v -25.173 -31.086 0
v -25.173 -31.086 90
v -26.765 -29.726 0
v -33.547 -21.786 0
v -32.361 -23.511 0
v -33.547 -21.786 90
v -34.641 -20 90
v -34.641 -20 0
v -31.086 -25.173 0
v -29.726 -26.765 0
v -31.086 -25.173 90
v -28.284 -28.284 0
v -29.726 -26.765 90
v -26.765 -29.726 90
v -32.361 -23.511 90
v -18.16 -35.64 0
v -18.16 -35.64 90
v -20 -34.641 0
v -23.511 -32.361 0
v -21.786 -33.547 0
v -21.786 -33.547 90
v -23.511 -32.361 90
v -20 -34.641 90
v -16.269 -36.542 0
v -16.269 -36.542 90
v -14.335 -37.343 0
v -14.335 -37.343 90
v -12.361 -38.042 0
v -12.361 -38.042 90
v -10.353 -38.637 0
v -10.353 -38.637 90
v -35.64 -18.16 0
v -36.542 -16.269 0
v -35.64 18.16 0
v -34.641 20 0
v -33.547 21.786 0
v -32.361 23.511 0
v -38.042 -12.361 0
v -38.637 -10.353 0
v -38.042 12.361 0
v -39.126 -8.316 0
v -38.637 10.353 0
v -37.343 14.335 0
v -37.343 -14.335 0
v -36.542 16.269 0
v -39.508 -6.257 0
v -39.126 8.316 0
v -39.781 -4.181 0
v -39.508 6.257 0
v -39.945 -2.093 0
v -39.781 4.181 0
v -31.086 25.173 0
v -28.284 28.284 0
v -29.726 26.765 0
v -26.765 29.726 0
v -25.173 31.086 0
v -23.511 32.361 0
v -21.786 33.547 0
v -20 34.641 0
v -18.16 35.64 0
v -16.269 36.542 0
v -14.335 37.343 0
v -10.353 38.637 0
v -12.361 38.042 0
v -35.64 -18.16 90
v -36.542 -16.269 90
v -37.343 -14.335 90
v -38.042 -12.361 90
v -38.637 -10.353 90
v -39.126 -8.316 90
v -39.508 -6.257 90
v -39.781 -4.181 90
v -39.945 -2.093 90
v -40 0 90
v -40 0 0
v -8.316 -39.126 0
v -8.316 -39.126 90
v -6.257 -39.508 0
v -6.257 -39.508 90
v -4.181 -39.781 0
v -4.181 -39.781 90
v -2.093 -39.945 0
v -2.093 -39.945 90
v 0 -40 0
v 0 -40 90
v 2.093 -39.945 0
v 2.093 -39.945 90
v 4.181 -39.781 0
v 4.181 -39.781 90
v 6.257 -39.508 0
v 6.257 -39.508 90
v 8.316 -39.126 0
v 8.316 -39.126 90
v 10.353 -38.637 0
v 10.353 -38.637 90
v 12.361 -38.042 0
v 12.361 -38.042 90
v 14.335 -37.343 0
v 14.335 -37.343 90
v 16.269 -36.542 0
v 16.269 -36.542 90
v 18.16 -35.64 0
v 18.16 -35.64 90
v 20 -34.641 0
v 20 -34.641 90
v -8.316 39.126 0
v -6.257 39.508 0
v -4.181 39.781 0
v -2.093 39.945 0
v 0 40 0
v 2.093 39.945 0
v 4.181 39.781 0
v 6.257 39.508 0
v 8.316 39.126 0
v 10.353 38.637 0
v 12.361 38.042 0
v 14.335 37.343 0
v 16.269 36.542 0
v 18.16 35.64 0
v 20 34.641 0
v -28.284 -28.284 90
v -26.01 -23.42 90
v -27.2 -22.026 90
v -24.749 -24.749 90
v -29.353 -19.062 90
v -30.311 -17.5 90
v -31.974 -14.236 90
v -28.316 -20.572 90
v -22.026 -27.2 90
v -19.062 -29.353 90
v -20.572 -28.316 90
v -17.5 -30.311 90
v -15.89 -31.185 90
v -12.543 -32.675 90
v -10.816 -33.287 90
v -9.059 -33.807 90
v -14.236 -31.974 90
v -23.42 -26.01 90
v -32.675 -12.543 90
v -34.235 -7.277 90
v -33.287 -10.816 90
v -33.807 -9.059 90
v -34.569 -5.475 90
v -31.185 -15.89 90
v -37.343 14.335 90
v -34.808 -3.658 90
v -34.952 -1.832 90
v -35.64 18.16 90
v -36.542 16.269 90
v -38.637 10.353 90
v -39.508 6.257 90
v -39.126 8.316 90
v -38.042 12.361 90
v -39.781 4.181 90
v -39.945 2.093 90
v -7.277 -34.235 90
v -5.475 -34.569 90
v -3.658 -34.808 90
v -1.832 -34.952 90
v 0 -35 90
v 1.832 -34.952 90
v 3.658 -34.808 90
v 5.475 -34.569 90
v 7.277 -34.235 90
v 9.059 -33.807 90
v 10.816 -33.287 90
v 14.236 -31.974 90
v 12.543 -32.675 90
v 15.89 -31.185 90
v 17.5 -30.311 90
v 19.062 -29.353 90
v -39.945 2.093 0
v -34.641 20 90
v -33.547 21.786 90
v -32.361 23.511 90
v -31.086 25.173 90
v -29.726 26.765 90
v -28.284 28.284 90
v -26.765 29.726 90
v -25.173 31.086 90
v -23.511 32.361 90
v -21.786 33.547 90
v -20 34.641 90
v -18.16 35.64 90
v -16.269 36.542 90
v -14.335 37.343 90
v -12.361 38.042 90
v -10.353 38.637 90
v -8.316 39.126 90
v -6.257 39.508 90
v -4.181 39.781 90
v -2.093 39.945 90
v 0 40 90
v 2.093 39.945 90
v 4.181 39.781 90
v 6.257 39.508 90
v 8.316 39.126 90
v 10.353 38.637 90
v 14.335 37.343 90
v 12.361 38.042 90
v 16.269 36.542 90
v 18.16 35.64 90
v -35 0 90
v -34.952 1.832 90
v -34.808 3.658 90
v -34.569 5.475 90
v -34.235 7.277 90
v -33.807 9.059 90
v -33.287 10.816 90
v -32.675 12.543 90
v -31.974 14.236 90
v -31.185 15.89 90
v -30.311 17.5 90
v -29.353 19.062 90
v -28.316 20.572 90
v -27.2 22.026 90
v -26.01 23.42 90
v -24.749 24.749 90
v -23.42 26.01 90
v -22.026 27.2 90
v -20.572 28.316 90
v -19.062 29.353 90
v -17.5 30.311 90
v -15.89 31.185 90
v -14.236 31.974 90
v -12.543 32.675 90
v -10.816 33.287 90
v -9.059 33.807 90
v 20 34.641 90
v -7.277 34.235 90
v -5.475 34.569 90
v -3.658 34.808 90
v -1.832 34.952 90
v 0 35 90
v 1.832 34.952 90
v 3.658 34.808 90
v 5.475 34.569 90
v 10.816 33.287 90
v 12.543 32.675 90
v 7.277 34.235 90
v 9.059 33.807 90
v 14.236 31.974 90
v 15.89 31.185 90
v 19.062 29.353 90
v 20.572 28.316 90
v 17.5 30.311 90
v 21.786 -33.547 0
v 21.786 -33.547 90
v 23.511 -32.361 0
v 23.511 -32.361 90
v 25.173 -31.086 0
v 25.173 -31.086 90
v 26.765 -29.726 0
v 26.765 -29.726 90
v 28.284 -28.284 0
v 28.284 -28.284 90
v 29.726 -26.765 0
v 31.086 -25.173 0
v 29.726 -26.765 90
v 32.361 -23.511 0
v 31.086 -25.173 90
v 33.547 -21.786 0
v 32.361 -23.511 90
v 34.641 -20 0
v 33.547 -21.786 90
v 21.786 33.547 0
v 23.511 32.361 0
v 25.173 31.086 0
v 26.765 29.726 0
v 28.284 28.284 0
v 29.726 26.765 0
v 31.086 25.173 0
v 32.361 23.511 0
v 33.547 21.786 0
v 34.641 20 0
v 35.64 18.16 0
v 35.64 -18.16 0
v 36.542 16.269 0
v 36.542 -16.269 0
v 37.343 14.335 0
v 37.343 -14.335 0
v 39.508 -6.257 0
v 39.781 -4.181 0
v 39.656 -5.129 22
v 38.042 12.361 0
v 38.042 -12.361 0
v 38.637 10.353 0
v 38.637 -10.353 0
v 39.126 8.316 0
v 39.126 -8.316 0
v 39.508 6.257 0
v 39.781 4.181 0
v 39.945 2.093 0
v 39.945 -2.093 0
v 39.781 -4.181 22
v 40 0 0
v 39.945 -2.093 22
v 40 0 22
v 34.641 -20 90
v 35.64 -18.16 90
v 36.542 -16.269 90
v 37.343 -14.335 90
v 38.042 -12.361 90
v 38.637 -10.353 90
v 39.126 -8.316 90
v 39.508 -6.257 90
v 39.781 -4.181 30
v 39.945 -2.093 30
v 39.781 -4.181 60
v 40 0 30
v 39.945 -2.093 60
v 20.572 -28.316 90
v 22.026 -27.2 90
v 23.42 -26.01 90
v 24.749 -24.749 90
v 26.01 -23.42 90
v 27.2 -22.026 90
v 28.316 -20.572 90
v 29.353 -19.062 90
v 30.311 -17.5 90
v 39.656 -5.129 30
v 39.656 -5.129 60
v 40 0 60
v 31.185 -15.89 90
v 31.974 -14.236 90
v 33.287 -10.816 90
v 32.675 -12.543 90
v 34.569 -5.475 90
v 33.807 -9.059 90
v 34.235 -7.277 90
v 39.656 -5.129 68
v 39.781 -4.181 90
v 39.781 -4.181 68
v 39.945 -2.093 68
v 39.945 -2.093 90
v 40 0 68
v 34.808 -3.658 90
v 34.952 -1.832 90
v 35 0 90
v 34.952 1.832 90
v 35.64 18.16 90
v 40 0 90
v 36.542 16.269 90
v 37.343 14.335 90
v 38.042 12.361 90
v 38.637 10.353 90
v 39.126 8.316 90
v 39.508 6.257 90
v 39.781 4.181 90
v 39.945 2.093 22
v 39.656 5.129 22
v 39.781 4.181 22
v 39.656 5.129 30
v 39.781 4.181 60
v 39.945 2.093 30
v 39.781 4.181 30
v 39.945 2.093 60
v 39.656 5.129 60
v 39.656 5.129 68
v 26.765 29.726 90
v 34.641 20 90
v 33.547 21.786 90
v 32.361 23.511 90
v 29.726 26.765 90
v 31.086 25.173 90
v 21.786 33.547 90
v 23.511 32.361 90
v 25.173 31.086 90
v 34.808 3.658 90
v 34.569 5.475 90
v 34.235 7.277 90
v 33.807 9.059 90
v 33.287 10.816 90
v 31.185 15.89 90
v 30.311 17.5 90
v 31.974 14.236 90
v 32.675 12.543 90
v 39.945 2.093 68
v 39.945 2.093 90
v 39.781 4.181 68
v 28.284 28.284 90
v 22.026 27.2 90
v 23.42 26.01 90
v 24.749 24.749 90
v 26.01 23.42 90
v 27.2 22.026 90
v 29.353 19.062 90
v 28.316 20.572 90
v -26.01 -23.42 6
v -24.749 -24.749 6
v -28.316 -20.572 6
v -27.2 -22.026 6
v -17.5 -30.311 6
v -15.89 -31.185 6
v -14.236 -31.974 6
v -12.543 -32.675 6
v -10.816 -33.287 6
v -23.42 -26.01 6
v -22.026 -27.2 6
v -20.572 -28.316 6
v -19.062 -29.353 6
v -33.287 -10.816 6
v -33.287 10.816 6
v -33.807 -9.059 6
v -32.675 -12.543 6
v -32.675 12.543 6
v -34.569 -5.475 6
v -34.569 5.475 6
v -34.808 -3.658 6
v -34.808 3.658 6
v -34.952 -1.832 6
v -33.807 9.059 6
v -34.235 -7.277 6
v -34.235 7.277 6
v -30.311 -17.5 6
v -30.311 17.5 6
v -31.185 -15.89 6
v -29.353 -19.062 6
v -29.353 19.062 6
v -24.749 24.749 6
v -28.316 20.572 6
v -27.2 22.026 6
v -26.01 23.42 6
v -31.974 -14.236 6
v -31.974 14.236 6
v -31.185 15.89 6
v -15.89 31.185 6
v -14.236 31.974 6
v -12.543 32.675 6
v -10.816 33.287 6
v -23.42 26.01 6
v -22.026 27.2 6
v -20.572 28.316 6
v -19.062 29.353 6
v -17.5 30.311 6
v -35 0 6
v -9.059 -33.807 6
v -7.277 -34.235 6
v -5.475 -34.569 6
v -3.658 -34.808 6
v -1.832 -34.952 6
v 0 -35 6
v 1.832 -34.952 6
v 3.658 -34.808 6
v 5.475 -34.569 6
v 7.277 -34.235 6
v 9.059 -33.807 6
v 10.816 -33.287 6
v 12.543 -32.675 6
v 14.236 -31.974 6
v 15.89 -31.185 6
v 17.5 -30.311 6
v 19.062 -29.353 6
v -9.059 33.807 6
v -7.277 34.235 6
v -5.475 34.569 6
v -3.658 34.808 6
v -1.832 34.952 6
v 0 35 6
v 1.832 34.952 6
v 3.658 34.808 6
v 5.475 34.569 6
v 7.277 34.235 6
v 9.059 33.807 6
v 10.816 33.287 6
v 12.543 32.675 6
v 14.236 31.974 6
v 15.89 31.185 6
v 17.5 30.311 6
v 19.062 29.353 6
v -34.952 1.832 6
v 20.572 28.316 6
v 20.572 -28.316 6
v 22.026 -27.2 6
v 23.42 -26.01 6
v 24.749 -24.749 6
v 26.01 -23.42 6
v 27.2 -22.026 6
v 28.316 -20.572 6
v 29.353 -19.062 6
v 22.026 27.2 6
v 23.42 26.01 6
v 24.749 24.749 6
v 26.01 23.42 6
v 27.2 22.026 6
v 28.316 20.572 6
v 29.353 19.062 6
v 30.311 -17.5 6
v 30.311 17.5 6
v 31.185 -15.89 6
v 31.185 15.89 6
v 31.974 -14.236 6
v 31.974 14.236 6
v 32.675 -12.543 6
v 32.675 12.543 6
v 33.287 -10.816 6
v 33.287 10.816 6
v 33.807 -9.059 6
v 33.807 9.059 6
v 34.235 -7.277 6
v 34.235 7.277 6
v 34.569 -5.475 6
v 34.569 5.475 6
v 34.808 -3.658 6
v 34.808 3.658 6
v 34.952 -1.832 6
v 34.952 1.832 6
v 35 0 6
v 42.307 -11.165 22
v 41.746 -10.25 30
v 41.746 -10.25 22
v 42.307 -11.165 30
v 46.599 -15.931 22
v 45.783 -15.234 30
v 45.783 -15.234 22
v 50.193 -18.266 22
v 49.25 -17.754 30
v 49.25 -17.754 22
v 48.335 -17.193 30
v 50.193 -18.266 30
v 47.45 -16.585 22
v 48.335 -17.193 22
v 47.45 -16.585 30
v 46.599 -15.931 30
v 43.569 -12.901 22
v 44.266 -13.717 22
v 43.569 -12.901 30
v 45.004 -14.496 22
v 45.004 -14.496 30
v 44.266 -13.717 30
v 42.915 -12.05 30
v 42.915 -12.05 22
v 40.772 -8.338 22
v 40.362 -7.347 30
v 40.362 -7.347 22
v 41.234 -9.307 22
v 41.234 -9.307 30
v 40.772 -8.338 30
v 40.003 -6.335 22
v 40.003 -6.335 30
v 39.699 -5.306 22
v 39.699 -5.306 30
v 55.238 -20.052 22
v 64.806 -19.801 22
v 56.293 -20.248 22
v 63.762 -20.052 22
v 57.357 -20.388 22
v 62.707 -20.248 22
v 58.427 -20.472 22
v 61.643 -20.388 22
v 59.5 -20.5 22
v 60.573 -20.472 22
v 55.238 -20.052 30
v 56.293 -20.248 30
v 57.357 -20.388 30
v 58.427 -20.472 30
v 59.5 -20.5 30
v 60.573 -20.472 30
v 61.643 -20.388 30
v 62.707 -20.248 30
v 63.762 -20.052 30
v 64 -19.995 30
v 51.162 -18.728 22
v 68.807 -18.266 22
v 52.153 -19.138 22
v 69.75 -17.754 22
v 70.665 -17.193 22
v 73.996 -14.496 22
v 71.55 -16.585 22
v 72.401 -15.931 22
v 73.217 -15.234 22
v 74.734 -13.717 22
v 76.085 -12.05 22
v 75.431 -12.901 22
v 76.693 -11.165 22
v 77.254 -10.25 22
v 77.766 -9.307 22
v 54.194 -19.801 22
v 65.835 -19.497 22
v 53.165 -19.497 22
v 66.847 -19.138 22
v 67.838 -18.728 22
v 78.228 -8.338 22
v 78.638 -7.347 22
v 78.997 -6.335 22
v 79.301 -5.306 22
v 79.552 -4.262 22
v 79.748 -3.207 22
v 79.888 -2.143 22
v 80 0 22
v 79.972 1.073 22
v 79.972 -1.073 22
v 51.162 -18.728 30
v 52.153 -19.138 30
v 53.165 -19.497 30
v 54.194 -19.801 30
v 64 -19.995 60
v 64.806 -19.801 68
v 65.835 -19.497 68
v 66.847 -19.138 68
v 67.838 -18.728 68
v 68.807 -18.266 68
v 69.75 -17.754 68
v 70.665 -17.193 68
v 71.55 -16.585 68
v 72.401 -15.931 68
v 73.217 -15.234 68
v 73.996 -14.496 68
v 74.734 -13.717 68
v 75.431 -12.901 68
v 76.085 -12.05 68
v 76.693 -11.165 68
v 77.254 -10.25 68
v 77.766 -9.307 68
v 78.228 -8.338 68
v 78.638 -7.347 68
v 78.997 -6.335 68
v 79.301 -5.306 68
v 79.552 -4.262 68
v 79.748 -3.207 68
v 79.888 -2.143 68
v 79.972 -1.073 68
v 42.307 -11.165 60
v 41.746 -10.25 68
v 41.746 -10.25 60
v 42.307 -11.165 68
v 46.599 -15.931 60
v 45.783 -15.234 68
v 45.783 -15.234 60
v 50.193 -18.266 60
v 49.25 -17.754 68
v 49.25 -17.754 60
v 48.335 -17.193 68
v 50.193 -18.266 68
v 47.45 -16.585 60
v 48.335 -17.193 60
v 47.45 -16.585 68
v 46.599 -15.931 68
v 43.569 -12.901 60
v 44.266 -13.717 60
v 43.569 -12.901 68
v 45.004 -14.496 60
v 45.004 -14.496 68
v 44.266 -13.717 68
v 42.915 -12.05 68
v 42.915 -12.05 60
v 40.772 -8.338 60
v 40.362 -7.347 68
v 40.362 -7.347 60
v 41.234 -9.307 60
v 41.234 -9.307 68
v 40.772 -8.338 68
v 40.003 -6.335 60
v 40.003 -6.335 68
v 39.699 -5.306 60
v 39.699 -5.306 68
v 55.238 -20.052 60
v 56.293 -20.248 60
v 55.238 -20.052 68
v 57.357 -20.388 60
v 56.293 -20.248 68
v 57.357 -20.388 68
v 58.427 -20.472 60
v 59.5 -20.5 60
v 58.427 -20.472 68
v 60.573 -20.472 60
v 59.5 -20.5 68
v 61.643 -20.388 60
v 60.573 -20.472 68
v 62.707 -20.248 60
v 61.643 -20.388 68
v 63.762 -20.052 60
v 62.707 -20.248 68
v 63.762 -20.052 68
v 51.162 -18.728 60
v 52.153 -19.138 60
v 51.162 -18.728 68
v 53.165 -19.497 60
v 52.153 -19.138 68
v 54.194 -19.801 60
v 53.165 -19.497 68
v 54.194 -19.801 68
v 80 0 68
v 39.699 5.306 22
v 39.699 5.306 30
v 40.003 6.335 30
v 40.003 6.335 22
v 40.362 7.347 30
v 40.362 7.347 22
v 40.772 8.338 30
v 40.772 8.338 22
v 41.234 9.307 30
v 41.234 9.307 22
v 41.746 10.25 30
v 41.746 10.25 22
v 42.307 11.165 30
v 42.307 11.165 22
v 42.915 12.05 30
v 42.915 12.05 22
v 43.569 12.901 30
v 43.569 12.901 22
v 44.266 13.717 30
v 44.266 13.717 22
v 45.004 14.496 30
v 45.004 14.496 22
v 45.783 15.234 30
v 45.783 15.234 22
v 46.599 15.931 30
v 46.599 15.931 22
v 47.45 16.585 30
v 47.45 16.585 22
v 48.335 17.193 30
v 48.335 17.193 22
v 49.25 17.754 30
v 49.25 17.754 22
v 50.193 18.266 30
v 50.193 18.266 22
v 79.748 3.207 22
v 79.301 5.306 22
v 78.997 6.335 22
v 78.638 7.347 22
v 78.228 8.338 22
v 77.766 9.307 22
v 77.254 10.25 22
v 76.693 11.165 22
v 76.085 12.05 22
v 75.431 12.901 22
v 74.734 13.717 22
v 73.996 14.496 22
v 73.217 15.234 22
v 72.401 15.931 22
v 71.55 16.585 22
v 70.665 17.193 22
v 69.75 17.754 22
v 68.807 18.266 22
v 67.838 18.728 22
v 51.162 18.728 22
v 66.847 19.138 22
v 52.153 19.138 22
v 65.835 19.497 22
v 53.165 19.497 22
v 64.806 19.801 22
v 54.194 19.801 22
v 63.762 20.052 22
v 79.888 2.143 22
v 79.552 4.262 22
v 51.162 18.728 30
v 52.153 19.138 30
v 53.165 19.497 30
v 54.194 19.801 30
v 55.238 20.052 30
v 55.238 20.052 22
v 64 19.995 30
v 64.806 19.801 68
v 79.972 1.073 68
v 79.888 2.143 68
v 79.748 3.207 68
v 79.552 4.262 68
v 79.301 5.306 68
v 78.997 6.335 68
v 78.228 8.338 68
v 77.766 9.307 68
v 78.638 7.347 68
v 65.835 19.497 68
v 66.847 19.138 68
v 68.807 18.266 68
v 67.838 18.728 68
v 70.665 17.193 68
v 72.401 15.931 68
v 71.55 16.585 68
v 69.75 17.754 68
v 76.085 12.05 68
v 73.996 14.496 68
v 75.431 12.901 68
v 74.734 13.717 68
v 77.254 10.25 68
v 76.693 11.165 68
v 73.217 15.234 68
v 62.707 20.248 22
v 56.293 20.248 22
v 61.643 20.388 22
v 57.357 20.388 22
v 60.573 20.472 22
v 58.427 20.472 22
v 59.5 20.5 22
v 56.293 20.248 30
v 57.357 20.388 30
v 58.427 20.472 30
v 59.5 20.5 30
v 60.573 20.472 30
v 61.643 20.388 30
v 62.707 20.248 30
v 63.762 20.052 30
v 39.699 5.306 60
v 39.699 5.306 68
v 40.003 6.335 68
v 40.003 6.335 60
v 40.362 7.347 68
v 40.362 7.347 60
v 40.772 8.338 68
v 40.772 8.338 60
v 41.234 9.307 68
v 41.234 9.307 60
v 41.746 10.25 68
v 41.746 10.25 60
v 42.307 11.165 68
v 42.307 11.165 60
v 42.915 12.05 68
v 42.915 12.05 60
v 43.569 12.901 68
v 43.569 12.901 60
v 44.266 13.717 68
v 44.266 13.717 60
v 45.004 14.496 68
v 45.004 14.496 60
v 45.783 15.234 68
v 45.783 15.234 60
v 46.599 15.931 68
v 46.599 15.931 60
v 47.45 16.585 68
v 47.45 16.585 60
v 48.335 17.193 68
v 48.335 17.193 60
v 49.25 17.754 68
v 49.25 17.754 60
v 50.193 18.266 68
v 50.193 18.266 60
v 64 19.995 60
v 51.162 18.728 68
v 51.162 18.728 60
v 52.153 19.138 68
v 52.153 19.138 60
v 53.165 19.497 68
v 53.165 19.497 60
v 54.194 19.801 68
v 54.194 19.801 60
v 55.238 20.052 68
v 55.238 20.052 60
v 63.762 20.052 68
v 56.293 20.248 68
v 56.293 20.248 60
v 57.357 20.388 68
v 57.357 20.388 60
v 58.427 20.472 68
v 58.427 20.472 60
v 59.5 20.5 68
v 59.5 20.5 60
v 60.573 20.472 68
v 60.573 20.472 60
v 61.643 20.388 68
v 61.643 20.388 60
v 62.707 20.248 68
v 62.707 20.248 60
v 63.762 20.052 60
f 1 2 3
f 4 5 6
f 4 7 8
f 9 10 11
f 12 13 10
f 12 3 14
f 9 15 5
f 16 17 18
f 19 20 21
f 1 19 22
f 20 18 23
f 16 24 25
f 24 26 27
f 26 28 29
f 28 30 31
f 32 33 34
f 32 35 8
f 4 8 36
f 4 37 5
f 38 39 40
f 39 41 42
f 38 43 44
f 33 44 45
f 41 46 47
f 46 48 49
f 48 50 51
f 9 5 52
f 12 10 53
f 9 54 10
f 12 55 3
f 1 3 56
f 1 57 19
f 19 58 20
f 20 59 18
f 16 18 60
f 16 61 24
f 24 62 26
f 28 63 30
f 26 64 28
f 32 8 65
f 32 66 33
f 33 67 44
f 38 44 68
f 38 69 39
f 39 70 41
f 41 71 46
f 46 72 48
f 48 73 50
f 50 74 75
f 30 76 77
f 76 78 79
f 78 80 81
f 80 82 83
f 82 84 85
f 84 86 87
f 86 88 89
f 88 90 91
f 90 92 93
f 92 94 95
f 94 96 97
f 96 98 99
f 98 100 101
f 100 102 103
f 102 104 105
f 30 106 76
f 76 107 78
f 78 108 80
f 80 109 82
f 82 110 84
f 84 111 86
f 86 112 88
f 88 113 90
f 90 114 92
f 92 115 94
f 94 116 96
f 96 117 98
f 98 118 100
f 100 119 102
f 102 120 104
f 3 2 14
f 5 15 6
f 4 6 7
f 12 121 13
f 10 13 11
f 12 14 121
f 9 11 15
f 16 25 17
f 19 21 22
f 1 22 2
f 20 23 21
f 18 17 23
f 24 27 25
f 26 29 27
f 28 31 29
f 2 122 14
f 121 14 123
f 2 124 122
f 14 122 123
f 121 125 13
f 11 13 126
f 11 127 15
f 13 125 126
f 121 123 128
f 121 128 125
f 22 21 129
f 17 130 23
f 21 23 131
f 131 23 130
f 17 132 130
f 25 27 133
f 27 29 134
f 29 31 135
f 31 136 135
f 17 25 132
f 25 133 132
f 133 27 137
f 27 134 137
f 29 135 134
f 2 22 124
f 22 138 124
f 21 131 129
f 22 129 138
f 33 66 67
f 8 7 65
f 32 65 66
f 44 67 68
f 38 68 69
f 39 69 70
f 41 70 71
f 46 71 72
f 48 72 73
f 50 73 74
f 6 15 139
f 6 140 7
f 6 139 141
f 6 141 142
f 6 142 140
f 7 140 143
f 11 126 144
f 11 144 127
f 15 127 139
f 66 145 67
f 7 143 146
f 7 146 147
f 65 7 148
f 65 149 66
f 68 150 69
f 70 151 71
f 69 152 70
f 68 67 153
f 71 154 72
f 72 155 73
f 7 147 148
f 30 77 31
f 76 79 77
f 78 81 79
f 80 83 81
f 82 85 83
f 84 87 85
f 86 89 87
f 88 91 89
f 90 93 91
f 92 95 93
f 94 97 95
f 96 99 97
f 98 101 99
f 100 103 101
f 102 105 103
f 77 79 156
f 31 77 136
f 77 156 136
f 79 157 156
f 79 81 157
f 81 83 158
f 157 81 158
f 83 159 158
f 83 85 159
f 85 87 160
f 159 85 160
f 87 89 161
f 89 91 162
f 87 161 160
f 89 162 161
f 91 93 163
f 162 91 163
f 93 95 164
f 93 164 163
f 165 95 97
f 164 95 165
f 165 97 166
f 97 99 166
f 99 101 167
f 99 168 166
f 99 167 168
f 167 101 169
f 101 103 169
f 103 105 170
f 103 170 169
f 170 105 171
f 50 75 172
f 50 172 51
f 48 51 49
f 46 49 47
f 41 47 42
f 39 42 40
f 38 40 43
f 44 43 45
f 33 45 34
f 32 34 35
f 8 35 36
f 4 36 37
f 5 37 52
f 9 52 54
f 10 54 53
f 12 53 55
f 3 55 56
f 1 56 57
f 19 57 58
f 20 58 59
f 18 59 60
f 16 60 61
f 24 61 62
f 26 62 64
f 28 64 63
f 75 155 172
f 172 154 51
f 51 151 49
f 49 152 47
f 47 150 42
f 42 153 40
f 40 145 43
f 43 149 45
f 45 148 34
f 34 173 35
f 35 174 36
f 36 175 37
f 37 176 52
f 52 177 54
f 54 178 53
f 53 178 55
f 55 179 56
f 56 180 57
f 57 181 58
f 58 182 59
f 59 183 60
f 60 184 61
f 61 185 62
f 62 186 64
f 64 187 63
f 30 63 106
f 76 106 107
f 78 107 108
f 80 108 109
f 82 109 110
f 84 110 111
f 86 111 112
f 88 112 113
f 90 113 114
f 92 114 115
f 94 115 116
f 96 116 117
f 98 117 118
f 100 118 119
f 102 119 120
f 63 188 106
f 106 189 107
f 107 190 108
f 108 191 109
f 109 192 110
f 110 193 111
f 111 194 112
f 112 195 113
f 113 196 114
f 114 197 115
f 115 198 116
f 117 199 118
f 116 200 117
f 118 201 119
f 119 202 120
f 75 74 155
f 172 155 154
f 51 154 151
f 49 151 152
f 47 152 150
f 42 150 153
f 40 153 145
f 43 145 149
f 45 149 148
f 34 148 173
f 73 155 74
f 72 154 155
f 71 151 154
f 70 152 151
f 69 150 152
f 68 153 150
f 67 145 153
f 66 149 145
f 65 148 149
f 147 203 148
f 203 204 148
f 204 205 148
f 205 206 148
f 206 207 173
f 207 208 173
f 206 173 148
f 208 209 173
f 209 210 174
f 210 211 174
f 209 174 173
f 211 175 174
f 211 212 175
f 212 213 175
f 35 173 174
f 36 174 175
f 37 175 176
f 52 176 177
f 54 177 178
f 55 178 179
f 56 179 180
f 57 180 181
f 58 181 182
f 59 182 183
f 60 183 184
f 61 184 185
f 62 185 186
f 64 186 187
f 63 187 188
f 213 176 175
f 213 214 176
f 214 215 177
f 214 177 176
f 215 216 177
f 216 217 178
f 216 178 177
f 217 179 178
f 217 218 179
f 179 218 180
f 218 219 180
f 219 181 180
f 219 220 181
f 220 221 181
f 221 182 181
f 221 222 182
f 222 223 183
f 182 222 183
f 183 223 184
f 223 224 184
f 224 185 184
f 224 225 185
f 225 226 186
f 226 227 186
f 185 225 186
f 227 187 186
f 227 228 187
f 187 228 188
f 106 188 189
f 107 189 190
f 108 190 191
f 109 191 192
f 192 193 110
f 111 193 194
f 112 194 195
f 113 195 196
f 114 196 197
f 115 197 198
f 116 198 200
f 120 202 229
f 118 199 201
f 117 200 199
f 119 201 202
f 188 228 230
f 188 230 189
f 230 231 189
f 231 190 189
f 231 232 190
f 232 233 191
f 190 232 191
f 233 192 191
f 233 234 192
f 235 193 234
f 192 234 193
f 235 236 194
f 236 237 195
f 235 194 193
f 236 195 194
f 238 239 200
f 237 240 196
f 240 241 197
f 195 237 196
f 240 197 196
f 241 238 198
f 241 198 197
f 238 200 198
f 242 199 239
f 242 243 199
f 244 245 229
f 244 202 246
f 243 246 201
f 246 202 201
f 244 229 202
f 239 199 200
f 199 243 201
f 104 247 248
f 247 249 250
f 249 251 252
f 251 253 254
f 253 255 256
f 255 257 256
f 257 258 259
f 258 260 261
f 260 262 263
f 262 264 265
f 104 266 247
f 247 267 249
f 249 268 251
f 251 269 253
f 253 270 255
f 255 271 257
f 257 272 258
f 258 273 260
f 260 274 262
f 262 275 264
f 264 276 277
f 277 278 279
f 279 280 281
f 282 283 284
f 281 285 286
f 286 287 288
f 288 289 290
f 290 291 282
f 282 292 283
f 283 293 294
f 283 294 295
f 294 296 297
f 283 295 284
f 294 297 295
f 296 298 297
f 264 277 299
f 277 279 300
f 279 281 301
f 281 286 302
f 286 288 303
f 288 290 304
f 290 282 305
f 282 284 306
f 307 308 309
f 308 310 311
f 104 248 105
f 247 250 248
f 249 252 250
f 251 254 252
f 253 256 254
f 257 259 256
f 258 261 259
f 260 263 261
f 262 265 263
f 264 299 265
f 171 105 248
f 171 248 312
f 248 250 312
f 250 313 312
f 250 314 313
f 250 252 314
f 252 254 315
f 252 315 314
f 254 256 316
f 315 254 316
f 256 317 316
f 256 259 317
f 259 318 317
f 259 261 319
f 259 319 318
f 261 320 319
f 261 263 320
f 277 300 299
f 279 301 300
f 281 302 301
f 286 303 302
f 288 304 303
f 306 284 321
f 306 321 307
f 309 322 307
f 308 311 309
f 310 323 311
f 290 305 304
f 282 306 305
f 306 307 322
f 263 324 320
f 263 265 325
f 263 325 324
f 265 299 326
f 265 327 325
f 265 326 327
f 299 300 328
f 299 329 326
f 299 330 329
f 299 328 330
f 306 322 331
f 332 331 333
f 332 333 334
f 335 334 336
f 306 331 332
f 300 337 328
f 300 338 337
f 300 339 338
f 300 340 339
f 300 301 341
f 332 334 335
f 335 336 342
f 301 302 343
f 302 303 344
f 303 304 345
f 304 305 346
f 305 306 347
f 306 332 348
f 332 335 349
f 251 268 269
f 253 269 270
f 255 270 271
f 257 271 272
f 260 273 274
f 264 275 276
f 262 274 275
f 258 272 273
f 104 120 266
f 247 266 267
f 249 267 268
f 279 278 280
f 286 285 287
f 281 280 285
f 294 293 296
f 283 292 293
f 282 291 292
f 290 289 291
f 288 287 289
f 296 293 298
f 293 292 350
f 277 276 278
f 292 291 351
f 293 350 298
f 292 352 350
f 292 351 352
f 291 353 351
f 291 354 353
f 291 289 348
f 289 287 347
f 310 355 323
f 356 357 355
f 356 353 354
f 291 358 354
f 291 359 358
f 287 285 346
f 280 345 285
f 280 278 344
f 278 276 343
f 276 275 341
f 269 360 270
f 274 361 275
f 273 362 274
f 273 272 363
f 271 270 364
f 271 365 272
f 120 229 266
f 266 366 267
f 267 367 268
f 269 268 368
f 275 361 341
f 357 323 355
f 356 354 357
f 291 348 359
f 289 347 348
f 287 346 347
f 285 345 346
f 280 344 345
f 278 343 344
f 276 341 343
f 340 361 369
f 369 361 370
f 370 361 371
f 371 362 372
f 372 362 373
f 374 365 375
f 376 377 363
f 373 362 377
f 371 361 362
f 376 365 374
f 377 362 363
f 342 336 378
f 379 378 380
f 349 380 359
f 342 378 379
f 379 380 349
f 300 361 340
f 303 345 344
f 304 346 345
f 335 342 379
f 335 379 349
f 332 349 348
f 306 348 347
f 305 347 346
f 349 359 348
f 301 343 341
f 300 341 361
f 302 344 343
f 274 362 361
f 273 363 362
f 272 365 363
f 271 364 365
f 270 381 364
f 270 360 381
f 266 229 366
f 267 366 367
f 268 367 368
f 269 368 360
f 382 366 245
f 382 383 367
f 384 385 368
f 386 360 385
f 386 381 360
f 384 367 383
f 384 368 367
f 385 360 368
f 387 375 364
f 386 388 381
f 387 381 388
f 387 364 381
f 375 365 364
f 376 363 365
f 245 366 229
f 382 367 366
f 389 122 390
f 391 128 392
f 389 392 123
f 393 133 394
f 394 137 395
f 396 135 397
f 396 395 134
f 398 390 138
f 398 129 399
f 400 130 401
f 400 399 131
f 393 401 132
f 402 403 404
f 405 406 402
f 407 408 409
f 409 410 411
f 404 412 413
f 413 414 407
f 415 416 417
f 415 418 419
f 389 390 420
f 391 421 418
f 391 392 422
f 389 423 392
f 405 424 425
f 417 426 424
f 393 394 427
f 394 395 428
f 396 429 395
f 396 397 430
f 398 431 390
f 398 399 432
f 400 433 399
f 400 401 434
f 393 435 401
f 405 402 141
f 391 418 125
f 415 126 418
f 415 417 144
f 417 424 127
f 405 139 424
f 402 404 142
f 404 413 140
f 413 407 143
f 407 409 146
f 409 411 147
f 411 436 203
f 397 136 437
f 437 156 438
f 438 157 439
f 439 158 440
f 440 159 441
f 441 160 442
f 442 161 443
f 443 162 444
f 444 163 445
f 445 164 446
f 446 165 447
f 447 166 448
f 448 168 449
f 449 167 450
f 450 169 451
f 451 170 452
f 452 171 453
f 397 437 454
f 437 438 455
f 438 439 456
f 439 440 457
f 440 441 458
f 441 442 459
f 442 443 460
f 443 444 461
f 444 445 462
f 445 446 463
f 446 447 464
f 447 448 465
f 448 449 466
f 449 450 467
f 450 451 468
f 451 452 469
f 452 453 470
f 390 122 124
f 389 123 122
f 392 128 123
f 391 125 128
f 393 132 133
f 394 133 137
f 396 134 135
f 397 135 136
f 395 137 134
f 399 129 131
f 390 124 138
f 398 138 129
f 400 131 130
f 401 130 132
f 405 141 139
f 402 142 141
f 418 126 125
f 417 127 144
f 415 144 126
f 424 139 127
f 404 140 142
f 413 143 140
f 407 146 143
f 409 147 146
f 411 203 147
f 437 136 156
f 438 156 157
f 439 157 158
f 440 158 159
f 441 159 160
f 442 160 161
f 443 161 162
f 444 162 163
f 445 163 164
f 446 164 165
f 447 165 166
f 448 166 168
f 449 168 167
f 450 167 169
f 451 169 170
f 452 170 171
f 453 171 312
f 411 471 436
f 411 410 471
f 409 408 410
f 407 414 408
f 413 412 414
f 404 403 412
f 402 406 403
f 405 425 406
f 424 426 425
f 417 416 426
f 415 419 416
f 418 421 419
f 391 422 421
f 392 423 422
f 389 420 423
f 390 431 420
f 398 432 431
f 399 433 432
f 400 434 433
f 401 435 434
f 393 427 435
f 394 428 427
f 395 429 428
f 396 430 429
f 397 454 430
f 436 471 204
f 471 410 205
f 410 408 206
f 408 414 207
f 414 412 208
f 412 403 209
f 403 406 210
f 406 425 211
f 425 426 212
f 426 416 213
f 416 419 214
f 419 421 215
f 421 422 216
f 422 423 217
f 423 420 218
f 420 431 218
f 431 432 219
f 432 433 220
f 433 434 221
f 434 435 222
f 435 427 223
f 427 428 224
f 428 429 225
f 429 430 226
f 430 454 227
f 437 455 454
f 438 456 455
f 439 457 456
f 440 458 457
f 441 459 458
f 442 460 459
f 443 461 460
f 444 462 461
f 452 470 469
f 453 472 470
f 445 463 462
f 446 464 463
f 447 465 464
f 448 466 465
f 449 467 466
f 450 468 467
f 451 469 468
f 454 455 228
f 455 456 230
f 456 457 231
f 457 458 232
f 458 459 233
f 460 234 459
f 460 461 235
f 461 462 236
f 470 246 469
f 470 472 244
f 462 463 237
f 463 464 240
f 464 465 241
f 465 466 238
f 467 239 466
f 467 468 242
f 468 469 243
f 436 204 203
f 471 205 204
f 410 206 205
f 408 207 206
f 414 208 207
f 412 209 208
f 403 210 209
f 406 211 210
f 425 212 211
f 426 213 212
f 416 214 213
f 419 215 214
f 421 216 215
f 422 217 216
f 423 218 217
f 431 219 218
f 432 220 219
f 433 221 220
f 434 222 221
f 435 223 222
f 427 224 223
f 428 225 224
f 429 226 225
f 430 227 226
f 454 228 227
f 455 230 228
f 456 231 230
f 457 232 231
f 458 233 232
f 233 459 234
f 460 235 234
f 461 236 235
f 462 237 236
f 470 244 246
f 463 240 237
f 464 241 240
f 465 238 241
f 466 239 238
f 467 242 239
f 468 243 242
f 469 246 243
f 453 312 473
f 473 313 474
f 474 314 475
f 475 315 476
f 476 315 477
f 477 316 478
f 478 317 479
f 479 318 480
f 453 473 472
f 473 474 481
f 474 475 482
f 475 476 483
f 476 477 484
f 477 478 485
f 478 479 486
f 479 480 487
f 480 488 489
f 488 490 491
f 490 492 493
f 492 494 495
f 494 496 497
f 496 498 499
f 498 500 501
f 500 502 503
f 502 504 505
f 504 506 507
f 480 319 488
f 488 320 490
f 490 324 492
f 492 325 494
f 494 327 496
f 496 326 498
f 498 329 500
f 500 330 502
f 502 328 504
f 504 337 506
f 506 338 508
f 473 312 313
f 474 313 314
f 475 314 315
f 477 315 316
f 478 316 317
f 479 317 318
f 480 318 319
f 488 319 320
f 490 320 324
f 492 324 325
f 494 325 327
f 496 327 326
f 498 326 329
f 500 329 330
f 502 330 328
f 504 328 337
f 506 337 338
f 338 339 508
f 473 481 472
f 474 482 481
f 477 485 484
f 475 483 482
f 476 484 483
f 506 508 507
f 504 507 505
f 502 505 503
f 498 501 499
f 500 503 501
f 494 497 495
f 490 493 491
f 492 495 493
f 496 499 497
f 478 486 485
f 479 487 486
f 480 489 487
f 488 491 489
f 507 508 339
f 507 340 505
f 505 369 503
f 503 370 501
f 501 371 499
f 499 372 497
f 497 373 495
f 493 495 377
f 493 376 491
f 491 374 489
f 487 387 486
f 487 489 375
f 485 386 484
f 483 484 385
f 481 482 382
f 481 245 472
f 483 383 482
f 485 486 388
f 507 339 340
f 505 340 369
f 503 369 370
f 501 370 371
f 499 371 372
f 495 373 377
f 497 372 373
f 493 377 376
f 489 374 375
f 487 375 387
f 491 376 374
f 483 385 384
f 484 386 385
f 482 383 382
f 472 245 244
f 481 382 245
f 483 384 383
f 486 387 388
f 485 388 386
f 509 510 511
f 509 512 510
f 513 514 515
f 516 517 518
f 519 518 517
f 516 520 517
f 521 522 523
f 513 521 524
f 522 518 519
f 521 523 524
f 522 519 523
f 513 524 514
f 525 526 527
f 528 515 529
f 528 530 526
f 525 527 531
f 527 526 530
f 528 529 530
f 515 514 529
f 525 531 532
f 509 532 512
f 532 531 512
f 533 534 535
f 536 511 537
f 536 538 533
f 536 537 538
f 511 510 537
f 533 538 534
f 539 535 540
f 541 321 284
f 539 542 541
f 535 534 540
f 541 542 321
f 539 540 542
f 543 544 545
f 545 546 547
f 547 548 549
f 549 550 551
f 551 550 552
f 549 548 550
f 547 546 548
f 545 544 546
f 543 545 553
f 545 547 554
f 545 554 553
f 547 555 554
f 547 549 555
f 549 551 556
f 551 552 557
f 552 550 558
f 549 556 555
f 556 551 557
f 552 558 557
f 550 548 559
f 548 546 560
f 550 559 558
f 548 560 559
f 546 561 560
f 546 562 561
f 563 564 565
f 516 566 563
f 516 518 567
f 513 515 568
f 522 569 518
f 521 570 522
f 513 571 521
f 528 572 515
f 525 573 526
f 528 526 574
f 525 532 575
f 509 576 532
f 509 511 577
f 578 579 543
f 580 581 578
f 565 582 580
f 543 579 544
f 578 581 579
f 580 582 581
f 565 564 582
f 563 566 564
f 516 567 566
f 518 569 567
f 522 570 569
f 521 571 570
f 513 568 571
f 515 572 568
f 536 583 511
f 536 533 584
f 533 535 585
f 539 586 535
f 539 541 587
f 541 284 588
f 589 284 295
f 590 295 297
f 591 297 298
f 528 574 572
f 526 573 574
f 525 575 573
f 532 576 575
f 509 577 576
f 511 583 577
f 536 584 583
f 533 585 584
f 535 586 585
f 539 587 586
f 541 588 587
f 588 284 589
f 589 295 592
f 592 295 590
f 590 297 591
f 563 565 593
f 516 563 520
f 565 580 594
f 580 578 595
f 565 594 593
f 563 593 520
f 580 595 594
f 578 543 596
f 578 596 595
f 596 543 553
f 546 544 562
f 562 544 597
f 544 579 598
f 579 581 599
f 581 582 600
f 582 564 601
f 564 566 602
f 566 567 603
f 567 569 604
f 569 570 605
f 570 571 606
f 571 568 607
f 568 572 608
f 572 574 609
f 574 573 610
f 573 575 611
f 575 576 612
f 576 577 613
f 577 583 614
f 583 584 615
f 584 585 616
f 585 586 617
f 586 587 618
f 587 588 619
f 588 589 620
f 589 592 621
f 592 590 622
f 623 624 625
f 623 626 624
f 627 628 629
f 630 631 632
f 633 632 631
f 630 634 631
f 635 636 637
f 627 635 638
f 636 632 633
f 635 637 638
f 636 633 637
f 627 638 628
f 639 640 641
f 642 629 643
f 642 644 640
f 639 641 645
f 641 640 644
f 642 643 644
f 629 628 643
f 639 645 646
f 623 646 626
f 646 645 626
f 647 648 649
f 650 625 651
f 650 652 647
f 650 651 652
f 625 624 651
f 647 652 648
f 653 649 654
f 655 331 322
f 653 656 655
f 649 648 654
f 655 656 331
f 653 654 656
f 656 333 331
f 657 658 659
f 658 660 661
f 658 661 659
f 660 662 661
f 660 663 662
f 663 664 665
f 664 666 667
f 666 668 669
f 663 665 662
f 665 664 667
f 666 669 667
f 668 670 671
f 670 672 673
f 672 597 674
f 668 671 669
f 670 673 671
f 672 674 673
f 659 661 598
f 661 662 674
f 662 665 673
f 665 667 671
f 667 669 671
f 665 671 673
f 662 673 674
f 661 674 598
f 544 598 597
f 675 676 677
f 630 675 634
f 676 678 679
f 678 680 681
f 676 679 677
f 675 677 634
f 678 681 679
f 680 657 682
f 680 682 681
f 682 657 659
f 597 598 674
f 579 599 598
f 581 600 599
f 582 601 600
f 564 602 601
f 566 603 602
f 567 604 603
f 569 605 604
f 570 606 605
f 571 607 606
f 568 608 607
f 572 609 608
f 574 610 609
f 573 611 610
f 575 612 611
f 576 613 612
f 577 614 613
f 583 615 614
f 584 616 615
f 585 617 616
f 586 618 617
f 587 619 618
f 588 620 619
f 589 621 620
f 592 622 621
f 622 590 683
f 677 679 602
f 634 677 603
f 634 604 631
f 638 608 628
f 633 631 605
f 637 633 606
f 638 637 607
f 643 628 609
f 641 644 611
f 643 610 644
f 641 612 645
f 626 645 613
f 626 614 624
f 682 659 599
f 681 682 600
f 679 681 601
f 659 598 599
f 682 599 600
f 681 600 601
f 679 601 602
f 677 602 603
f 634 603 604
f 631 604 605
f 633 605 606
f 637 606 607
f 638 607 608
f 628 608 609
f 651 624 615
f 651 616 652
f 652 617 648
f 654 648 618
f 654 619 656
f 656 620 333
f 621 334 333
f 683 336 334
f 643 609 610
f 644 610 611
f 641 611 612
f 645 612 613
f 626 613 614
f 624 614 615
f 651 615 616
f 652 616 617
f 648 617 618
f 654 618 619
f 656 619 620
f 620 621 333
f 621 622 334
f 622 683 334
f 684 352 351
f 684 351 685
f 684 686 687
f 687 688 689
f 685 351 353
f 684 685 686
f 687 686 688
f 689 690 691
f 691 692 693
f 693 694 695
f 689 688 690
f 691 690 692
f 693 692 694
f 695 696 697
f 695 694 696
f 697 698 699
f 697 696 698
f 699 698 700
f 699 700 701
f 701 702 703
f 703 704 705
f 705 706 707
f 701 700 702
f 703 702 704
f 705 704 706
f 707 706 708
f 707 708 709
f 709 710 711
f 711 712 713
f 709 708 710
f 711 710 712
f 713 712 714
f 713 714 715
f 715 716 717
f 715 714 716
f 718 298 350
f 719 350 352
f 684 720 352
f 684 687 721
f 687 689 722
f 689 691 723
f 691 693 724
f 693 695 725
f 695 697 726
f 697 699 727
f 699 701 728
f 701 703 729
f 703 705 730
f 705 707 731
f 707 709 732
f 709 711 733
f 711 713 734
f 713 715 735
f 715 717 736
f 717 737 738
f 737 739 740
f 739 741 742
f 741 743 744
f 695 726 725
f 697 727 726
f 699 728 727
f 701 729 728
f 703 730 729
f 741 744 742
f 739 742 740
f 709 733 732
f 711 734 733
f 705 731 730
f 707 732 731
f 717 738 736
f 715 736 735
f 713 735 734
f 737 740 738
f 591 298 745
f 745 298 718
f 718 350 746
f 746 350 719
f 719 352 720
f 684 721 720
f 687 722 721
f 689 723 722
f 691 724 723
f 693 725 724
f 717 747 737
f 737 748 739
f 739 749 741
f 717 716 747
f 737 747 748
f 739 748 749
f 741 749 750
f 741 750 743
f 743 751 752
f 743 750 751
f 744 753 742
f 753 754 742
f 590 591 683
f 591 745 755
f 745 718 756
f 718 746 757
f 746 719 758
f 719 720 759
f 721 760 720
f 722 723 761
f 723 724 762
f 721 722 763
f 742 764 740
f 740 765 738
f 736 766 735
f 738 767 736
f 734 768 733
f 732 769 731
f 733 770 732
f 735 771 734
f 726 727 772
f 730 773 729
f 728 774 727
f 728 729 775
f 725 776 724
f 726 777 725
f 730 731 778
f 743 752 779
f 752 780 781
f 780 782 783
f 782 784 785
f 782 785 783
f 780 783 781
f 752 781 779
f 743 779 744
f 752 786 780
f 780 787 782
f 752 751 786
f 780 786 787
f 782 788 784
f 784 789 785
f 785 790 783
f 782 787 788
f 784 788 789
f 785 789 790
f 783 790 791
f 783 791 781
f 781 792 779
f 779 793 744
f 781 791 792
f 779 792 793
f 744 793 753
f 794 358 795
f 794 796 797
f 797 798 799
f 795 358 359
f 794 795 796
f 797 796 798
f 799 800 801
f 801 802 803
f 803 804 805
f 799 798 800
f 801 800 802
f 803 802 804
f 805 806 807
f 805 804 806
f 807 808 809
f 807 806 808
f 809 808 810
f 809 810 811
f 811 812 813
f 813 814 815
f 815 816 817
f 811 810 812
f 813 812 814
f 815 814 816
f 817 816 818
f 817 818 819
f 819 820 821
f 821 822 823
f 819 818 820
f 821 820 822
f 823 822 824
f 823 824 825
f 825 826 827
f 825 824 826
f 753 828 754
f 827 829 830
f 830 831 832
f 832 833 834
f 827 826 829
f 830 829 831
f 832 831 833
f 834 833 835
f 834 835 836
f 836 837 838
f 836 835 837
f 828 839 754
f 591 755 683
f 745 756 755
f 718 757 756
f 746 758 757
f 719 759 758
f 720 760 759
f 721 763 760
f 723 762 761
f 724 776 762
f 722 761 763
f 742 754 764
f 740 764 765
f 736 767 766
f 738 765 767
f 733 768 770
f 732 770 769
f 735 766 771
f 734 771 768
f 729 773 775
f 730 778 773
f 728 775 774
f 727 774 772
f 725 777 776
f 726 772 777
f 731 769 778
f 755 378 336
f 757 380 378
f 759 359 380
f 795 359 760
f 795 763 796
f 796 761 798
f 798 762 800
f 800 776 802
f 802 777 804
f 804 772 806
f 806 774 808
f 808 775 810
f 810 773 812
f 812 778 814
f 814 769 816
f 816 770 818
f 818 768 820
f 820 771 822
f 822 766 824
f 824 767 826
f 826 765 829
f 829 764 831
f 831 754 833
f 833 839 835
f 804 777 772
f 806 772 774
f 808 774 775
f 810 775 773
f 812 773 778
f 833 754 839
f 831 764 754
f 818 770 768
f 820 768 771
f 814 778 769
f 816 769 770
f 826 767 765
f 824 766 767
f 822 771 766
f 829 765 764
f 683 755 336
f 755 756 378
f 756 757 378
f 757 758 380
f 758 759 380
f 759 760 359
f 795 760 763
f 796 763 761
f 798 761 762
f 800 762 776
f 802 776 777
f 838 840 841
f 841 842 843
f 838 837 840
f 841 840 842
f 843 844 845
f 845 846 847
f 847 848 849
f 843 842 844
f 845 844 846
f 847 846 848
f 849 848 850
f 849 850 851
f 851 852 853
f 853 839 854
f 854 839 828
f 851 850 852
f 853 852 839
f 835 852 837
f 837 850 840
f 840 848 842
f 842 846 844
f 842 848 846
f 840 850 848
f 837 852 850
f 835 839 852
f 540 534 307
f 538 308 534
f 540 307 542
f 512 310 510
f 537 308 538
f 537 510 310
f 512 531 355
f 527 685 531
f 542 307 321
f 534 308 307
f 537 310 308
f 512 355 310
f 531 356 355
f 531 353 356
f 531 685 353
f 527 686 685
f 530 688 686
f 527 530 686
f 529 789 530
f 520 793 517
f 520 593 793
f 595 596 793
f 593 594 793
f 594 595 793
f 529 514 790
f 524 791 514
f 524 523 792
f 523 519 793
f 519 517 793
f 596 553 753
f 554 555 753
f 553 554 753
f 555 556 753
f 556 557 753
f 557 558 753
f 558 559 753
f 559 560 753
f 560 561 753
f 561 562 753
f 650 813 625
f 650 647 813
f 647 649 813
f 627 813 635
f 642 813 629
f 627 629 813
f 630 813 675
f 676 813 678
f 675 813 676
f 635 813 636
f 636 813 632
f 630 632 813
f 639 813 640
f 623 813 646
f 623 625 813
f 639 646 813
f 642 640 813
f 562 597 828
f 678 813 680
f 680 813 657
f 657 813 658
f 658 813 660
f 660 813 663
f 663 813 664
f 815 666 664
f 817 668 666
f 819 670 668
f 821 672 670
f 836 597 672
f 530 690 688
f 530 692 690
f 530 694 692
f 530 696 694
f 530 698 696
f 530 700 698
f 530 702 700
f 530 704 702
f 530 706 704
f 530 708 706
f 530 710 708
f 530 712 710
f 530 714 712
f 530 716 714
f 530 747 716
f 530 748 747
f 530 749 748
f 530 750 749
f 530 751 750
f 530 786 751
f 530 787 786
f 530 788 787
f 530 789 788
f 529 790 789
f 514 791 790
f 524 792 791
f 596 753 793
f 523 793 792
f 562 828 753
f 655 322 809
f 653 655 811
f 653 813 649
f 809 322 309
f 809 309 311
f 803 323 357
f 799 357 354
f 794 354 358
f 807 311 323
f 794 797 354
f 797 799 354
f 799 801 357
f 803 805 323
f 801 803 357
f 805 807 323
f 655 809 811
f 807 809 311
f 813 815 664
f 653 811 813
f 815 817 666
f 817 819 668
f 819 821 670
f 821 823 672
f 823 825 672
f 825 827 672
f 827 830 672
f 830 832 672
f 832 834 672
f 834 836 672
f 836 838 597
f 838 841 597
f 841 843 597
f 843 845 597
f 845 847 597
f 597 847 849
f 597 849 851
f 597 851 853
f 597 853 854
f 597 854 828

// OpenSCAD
// OpenSCAD: マグカップ（修正版）
// 単位: mm

$fn = 120; // 円を滑らかに

// -------- パラメータ --------
mug_outer_r = 40;    // 外半径 (外径 80)
mug_inner_r = 35;    // 内半径 (内径 70)
mug_h = 90;          // 高さ
bottom_thickness = 6;

handle_wall = 8;            // 取手の厚み（外側と内側の差）
inner_open_w = 25;          // 取手内側空間の幅 (指 3 本ぐらい)
inner_open_h = 30;          // 取手内側空間の高さ

// 小さく重なりを持たせて本体に確実に接続する（面接触を避ける）
overlap = 1;

// 取手外側の半円半径（内側幅の半分 + 壁厚）
R_out = inner_open_w/2 + handle_wall; // = 12.5 + handle_wall

// 取手の平面（フラット面）の X 座標（本体外周に少し食い込ませる）
flat_face_x = mug_outer_r - overlap; // フラット面を本体外周より overlap mm 内側にする
outer_center_x = flat_face_x + R_out; // 半円中心の X

// 取手の垂直サイズ
handle_extrude_h = inner_open_h + 2*handle_wall; // 内空間より上下に壁分を確保
mug_center_z = mug_h/2;
handle_z_bottom = mug_center_z - handle_extrude_h/2;
inner_void_z = mug_center_z - inner_open_h/2;

// -------- モジュール --------
module mug() {
    difference() {
        // 外側の円筒
        translate([0,0,0]) cylinder(h=mug_h, r=mug_outer_r);
        // 内側の空洞（底面の厚みを残す）
        translate([0,0,bottom_thickness]) cylinder(h=mug_h - bottom_thickness, r=mug_inner_r);
    }
}

module handle_piece() {
    // 取手外形（半円＋フラット面）を押し出し、内側の指空間を差し引く
    difference() {
        // 外形: 半円（外側が半円、内側がフラット）
        translate([0,0,handle_z_bottom])
            linear_extrude(height = handle_extrude_h, center = false, convexity = 10)
                intersection() {
                    // 半径 R_out の円（右側半分を残す）
                    translate([outer_center_x, 0]) circle(r=R_out);
                    // フラット面で切る矩形（左端を flat_face_x - 1 にして確実に切断）
                    translate([flat_face_x - 1, -(R_out + 10)])
                        square([ (outer_center_x + R_out) - (flat_face_x - 1) + 20, 2*(R_out + 10) ]);
                }

        // 取手内側の空間（指を入れる部分）を差し引く
        // 左端を flat_face_x に合わせ、幅 inner_open_w、高さ inner_open_h、中央位置は inner_void_z
        translate([flat_face_x, -(R_out + 10), inner_void_z])
            cube([inner_open_w, 2*(R_out + 10), inner_open_h]);
    }
}

// -------- 組み立て --------
union() {
    mug();
    handle_piece();
}
